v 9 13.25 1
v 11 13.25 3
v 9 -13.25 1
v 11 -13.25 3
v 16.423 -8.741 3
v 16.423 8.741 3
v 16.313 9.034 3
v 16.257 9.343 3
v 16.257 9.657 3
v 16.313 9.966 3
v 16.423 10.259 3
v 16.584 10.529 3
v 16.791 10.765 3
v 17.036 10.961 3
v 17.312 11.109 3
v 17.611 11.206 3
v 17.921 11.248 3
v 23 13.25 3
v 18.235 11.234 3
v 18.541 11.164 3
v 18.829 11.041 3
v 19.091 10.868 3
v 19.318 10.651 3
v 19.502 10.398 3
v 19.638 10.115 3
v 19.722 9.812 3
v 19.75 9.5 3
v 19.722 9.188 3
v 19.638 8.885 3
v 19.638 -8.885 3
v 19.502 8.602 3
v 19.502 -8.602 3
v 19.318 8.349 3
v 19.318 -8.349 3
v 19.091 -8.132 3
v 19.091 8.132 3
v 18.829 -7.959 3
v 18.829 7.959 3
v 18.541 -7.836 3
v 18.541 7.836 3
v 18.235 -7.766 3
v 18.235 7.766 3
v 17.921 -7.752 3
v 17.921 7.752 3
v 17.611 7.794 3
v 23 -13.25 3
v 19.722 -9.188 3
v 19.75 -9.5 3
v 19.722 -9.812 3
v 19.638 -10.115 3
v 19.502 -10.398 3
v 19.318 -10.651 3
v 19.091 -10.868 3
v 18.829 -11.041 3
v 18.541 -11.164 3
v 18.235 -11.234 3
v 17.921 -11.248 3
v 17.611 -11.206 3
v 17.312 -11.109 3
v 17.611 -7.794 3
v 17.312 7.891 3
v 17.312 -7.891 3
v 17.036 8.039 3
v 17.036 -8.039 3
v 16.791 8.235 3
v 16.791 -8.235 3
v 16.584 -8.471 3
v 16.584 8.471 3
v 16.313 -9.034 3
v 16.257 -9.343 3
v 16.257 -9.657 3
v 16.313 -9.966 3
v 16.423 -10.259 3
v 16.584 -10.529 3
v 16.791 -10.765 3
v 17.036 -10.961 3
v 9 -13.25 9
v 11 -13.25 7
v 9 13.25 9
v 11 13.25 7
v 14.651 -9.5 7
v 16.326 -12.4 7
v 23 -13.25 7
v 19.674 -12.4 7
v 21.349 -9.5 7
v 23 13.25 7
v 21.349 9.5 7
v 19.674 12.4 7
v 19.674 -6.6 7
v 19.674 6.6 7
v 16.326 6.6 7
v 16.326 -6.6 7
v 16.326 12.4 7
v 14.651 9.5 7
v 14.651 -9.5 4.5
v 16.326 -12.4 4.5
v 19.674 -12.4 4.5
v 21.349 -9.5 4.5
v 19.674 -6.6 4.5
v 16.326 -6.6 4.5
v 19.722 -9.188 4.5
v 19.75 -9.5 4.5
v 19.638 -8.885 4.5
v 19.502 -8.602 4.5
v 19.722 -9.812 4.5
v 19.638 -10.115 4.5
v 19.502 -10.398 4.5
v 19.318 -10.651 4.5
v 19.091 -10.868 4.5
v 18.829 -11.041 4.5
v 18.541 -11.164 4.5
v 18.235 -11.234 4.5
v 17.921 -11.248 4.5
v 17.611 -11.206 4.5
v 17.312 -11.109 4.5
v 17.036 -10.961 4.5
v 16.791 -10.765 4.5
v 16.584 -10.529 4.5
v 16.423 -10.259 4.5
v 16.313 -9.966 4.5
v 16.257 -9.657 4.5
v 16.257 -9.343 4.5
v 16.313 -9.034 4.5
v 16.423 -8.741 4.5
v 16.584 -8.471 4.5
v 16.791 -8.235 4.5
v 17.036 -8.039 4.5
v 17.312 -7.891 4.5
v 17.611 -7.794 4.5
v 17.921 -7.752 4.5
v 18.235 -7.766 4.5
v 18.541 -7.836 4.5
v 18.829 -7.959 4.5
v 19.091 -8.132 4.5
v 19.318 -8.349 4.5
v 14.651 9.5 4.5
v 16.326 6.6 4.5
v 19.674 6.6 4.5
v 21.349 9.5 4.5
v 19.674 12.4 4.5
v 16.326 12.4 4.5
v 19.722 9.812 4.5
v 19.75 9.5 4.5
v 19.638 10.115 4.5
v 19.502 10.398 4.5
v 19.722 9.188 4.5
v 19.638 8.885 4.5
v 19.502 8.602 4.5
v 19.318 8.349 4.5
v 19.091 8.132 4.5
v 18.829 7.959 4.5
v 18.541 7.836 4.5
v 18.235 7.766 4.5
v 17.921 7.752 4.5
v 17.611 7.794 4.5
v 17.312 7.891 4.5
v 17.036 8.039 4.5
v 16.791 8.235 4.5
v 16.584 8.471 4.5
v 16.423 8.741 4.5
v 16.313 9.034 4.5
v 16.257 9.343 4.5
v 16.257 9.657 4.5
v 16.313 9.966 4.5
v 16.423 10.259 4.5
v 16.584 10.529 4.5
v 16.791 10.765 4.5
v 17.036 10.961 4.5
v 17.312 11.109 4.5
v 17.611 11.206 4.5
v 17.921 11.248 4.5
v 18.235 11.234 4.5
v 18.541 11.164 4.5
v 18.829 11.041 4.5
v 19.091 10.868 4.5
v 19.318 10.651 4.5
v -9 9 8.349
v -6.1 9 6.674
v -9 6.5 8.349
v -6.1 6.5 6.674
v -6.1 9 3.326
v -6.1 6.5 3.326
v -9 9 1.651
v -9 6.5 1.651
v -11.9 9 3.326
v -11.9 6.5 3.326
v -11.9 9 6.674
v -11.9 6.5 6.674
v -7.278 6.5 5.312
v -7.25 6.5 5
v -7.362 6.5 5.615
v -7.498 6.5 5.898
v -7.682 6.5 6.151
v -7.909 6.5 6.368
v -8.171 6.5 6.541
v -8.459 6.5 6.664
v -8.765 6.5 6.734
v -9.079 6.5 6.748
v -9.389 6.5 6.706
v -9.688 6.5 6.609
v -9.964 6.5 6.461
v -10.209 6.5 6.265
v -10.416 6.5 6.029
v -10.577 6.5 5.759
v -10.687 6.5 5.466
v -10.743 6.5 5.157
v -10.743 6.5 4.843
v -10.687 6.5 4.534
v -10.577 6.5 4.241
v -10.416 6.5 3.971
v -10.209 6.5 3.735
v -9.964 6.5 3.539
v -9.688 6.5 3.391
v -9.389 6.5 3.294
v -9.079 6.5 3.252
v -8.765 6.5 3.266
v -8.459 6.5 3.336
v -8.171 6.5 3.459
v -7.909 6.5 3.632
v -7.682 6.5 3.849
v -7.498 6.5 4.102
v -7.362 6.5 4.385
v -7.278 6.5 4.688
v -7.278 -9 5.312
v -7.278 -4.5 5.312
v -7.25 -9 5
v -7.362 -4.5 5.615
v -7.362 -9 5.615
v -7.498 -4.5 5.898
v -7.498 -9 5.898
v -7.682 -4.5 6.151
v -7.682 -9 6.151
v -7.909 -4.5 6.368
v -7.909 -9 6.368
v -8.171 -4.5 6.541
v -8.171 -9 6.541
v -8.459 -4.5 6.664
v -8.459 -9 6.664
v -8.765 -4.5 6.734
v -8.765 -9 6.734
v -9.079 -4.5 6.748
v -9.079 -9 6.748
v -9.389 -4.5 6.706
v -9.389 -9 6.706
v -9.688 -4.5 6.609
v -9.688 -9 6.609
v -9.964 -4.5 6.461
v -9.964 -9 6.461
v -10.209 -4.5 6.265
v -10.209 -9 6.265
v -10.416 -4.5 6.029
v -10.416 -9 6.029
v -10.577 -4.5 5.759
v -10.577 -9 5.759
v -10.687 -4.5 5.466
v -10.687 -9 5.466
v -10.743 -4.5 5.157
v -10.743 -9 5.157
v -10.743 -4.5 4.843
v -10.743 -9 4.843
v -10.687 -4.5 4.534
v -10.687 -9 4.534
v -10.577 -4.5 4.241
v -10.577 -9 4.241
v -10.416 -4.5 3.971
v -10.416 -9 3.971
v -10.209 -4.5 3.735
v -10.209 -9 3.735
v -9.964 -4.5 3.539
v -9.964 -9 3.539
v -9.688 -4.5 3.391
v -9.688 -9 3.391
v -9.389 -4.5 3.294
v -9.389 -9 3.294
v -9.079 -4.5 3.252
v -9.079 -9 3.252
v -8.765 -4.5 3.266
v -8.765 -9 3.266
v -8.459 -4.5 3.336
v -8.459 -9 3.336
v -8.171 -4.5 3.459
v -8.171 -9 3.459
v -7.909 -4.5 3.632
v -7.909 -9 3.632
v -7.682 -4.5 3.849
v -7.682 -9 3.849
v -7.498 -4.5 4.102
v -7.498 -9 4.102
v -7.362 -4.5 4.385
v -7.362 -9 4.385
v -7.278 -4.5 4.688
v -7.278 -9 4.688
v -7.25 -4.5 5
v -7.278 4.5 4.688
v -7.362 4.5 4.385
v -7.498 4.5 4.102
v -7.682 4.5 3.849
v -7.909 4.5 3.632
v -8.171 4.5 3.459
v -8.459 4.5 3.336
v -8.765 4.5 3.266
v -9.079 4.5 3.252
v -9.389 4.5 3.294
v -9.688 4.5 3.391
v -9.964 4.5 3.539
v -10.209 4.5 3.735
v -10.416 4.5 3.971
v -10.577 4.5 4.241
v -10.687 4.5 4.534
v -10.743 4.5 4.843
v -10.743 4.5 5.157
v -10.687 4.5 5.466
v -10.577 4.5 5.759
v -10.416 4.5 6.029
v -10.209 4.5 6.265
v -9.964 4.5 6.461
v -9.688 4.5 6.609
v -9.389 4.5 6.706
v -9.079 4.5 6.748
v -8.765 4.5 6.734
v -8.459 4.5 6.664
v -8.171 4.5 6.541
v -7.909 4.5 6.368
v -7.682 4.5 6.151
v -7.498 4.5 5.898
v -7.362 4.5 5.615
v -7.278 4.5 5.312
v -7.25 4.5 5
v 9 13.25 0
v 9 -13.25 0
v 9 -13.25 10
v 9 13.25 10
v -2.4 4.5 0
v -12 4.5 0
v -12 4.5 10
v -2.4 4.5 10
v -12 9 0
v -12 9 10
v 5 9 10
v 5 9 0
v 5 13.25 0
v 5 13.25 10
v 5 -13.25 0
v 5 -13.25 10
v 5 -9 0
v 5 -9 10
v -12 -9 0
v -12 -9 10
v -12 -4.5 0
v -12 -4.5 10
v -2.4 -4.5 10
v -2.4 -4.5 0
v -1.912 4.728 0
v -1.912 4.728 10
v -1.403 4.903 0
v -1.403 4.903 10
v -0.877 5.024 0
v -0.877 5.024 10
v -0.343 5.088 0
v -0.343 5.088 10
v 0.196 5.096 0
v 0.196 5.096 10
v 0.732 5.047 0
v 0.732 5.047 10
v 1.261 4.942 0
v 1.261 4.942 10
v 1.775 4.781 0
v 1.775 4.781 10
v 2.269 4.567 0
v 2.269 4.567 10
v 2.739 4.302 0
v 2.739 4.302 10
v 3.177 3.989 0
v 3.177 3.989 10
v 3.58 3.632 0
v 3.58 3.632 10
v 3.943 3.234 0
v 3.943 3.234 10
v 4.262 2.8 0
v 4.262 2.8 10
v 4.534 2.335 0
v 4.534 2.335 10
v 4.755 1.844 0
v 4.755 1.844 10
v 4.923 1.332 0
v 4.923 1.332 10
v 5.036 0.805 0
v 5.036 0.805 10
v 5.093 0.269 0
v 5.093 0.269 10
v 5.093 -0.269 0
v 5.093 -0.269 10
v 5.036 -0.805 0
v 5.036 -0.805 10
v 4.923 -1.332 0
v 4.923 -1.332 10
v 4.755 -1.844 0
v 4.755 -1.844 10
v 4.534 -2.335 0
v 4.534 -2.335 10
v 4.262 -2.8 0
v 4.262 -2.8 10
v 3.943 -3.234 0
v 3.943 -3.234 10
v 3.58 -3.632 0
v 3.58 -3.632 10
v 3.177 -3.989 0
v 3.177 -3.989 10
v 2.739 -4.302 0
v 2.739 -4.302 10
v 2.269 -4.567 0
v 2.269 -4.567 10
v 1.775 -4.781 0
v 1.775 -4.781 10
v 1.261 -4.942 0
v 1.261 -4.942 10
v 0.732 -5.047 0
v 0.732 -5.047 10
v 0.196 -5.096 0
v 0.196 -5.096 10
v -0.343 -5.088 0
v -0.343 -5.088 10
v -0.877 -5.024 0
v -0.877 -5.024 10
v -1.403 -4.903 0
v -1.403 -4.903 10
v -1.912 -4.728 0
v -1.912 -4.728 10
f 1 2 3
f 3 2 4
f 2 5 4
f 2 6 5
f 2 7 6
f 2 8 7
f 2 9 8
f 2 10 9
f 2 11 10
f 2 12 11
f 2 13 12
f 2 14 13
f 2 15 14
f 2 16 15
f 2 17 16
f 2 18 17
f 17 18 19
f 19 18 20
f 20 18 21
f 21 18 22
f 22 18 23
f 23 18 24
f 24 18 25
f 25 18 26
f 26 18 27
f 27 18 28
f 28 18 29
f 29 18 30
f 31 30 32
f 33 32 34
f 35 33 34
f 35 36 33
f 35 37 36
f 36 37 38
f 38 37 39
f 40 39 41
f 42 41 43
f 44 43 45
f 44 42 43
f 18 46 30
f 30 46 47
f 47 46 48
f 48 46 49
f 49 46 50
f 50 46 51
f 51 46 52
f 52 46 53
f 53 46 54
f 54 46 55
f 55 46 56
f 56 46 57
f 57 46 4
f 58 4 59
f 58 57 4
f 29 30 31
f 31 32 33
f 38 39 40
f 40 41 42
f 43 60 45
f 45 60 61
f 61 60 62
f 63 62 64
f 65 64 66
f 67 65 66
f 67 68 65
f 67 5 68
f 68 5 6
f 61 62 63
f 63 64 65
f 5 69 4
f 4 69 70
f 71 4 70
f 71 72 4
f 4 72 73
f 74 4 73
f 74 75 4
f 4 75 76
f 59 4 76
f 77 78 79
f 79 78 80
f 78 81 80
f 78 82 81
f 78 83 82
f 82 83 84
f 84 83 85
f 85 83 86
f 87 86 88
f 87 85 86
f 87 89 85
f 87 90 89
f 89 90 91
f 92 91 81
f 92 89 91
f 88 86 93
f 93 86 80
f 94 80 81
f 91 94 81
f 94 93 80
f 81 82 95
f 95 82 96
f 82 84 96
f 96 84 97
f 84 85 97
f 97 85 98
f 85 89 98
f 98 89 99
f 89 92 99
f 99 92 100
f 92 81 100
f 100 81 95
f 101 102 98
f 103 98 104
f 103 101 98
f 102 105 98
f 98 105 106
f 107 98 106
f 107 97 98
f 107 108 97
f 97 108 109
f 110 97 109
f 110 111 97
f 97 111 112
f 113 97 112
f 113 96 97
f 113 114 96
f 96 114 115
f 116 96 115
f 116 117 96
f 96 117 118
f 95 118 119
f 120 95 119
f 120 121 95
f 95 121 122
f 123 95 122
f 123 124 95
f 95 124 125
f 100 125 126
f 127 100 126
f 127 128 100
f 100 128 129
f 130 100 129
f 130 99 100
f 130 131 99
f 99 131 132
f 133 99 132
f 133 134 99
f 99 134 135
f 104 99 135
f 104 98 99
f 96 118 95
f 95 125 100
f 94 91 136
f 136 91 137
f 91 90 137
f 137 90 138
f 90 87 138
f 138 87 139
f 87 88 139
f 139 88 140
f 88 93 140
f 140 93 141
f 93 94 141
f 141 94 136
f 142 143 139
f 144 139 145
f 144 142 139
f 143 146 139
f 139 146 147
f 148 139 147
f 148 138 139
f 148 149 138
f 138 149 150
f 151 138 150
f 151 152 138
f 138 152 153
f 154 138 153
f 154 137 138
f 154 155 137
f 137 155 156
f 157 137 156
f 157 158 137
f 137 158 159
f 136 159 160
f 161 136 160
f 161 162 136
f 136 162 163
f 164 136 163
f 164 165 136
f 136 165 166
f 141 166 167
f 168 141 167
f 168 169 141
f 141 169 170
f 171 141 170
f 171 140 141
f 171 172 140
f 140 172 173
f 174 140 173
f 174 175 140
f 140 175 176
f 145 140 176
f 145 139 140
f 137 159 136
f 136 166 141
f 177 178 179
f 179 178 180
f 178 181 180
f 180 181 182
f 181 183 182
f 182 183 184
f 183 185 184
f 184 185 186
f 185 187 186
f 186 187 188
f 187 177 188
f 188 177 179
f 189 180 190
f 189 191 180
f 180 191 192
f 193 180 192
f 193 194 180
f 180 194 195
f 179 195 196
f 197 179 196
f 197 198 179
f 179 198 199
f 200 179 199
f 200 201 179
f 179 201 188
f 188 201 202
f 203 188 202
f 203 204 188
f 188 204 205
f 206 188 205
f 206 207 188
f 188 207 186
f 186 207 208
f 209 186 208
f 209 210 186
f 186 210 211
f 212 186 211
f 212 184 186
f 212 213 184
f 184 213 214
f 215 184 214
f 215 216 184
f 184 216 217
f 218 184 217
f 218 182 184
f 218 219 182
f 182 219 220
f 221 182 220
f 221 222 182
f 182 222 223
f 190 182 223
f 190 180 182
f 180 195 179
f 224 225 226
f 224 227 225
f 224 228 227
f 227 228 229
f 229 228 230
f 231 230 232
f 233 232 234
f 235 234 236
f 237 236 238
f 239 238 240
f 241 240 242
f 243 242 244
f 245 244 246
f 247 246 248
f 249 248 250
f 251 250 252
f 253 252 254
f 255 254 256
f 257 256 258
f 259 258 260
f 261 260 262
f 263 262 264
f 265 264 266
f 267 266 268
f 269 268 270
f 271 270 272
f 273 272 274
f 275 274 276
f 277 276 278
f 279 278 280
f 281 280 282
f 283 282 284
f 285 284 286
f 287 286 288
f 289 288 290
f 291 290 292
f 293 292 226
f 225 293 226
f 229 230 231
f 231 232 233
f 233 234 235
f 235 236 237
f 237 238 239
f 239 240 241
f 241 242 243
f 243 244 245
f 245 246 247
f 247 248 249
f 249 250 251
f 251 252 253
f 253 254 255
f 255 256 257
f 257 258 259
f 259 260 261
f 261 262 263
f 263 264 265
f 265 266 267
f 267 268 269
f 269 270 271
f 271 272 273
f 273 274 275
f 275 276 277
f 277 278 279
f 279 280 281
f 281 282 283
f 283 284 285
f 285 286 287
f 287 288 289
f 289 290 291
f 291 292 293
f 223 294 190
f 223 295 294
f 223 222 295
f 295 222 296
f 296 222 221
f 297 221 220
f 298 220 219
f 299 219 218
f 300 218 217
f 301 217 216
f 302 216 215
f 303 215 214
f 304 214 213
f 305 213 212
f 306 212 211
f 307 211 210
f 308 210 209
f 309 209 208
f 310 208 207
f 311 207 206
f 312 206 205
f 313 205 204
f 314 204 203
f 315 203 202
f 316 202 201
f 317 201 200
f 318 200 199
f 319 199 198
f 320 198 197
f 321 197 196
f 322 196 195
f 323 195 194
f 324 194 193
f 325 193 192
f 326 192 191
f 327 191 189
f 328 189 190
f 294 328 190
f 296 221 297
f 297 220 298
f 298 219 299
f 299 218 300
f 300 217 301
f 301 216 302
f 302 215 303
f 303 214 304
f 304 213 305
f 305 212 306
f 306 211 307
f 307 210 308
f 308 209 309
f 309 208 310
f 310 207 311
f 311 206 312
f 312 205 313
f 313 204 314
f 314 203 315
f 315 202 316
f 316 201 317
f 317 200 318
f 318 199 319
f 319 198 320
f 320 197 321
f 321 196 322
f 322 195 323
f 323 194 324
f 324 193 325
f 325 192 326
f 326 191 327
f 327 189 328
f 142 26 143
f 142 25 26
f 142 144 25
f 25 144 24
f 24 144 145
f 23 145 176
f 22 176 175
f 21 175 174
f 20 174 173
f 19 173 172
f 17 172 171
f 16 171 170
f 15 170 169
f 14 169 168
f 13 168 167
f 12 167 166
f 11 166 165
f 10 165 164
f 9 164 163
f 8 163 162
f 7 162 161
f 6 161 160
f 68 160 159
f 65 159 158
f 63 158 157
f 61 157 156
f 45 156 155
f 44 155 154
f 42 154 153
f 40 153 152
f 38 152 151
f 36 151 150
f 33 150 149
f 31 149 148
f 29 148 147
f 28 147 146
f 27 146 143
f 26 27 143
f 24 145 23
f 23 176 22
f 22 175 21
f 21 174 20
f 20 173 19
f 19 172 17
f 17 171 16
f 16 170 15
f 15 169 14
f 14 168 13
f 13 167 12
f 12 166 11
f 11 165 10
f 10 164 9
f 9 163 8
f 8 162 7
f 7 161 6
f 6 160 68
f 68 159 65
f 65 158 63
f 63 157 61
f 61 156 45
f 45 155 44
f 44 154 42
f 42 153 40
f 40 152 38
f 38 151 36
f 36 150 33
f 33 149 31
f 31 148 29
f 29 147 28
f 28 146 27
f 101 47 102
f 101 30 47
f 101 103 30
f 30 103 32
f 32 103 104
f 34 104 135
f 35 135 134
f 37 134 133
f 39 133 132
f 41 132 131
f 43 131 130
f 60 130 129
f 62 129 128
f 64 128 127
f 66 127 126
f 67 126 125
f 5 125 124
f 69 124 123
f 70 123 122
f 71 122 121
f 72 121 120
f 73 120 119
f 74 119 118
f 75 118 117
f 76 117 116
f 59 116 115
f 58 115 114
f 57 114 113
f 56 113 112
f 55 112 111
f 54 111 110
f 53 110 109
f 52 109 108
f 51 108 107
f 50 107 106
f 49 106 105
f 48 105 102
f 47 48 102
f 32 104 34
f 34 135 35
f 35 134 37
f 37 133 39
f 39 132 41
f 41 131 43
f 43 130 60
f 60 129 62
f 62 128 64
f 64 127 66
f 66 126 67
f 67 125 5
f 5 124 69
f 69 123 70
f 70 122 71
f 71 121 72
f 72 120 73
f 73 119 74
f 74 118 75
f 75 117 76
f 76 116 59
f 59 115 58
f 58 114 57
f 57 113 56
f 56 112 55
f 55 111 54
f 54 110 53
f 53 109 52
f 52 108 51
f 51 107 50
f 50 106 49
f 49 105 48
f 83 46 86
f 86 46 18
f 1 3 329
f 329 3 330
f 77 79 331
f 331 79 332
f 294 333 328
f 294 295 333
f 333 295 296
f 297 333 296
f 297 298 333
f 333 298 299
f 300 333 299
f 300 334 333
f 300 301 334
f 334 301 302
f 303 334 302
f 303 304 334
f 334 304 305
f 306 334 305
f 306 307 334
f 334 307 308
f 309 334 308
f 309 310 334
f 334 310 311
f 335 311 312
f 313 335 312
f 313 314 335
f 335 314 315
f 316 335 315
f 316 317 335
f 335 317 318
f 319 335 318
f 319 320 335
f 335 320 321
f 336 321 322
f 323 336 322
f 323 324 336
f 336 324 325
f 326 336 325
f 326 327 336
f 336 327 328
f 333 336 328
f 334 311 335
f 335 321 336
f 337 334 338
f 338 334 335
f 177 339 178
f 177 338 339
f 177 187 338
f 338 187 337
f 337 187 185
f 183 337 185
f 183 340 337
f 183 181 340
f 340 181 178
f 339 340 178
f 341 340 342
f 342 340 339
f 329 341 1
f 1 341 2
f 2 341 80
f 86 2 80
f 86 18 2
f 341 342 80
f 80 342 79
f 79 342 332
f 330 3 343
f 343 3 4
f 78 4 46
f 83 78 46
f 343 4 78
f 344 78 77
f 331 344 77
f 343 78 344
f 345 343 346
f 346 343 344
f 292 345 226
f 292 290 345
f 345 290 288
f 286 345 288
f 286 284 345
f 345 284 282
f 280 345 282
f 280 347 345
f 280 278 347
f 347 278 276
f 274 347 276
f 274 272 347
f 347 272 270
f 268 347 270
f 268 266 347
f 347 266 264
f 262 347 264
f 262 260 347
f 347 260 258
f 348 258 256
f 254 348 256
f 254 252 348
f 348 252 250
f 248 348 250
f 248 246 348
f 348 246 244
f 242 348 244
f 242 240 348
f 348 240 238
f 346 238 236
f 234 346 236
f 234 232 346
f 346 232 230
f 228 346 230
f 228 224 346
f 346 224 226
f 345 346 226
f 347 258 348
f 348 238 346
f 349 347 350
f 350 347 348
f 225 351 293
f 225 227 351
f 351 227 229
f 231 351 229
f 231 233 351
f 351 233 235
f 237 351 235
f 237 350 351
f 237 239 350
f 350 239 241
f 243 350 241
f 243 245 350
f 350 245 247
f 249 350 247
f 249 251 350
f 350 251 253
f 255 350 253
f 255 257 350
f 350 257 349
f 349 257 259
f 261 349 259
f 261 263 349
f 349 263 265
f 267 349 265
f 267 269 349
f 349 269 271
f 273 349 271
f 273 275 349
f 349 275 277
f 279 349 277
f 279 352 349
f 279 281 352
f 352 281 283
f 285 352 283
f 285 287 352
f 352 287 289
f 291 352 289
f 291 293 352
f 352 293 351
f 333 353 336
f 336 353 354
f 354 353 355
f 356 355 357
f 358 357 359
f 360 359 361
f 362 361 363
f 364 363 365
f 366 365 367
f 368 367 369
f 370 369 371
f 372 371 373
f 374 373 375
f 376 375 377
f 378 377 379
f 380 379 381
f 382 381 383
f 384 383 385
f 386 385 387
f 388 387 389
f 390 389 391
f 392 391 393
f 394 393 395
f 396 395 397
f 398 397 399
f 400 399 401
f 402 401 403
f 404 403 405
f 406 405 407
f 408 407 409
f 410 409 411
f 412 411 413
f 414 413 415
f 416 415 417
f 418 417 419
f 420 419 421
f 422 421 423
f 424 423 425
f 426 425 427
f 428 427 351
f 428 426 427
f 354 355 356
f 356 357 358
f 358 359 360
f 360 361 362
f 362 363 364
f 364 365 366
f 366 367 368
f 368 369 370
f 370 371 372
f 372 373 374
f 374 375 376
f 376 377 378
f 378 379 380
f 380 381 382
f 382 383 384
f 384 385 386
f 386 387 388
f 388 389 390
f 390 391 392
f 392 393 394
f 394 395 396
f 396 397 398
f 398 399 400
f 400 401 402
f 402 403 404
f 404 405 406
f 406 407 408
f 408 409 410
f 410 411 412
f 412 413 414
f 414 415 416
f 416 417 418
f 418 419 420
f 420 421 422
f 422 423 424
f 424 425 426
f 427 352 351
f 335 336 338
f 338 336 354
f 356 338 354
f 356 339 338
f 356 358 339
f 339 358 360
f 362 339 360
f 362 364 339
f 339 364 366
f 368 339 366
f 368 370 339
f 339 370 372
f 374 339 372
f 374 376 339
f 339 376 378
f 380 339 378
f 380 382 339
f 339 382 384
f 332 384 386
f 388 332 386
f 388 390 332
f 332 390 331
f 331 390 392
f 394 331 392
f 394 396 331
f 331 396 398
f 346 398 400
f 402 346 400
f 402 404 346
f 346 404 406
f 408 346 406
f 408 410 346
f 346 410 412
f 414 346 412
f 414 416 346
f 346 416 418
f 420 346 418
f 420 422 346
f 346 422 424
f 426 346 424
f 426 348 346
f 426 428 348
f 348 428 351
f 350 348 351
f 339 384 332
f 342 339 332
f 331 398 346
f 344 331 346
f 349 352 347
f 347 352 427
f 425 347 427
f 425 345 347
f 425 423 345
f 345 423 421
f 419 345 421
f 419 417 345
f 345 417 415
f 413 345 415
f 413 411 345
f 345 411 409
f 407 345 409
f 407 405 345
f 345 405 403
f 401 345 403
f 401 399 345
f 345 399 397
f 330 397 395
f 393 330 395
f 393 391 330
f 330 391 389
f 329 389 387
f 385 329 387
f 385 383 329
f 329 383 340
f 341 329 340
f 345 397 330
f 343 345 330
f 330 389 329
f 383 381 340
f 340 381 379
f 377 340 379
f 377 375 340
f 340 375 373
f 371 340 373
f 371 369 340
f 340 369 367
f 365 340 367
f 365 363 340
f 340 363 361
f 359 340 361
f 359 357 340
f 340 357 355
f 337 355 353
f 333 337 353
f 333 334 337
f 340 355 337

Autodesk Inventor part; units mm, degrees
ref_plane "YZ Plane" through (0, 0, 0) normal (1, 0, 0) x (0, 1, 0)
ref_plane "XZ Plane" through (0, 0, 0) normal (0, 1, 0) x (-1, 0, 0)
ref_plane "XY Plane" through (0, 0, 0) normal (0, 0, 1) x (1, 0, 0)
sketch "Sketch1" plane through (0, 0, 0) normal (0, 0, 1) x (1, 0, 0)
  arc A0 (-2.4, -4.5) -> (-2.4, 4.5) centre (0, 0) ccw
  line L0 (-2.4, 4.5) -> (-12, 4.5)
  line L1 (-12, 4.5) -> (-12, 9)
  line L2 (-12, 9) -> (5, 9)
  line L3 (5, -9) -> (-12, -9)
  line L4 (-12, -9) -> (-12, -4.5)
  line L5 (-12, -4.5) -> (-2.4, -4.5)
  line L6 (5, 9) -> (5, 13.25)
  line L7 (5, -9) -> (5, -13.25)
  line L8 (5, 13.25) -> (9, 13.25)
  line L9 (9, 13.25) -> (9, -13.25)
  line L10 (9, -13.25) -> (5, -13.25)
  dimension "d0" = 10.2
  dimension "d1" = 9
  dimension "d2" = 12
  dimension "d3" = 9
  dimension "d7" = 26.5
  dimension "d8" = 4.25
  dimension "d9" = 4
  dimension "d10" = 5
extrude "Extrusion1" add sketch "Sketch1" along normal blind 10
sketch "Sketch4" plane through (5, 13.25, 0) normal (0, 1, 0) x (1, 0, 0)
  line L0 (4, 0) -> (4, -10) projected
  line L1 (4, 0) -> (4, -10) projected
  line L2 (18, -3) -> (18, -7)
  line L3 (18, -7) -> (4, -7)
  line L4 (18, -3) -> (4, -3)
  line L5 (4, 0) -> (0, 0) projected
  point P0 (-5, 0)
  dimension "d24" = 4
  dimension "d47" = 14
  dimension "d48" = 3
extrude "Extrusion4" add sketch "Sketch4" against normal up to surface (26.5 mm away)
sketch "Sketch5" plane through (9, 13.25, 7) normal (0, 0, 1) x (1, 0, 0)
  line L0 (0, -26.5) -> (14, -26.5) projected
  line L1 (14, 0) -> (14, -26.5) projected
  line L2 (0, 0) -> (14, 0) projected
  circle A0 centre (9, -3.75) radius 1.75
  circle A1 centre (9, -22.75) radius 1.75
  point P0 (-9, -13.25)
  dimension "d27" = 3.5
  dimension "d28" = 3.75
  dimension "d29" = 3.75
  dimension "d30" = 5
extrude "Extrusion5" cut sketch "Sketch5" against normal up to next
sketch "Sketch6" plane through (-12, -9, 0) normal (0, -1, 0) x (1, 0, 0)
  line L0 (0, 10) -> (17, 10) projected
  line L1 (0, 0) -> (0, 10) projected
  circle A0 centre (3, 5) radius 1.75
  point P0 (12, 0)
  dimension "d33" = 3.5
  dimension "d34" = 3
  dimension "d35" = 5
extrude "Extrusion6" cut sketch "Sketch6" against normal up to surface (18 mm away)
sketch "Sketch7" plane through (-12, 9, 0) normal (0, 1, 0) x (1, 0, 0)
  circle A0 centre (3, -5) radius 1.75 projected
  line L0 (3, -8.3486) -> (0.1, -6.6743)
  line L1 (0.1, -6.6743) -> (0.1, -3.3257)
  line L2 (0.1, -3.3257) -> (3, -1.6514)
  line L3 (3, -1.6514) -> (5.9, -3.3257)
  line L4 (5.9, -3.3257) -> (5.9, -6.6743)
  line L5 (5.9, -6.6743) -> (3, -8.3486)
  point P0 (12, 0)
  dimension "d38" = 5.8
extrude "Extrusion7" cut sketch "Sketch7" against normal blind 2.5
sketch "Sketch8" plane through (9, 13.25, 7) normal (0, 0, 1) x (1, 0, 0)
  circle A0 centre (9, -3.75) radius 1.75 projected
  circle A1 centre (9, -22.75) radius 1.75 projected
  line L0 (5.6514, -22.75) -> (7.3257, -19.85)
  line L1 (7.3257, -19.85) -> (10.6743, -19.85)
  line L2 (10.6743, -19.85) -> (12.3486, -22.75)
  line L3 (12.3486, -22.75) -> (10.6743, -25.65)
  line L4 (10.6743, -25.65) -> (7.3257, -25.65)
  line L5 (7.3257, -25.65) -> (5.6514, -22.75)
  line L6 (5.6514, -3.75) -> (7.3257, -0.85)
  line L7 (7.3257, -0.85) -> (10.6743, -0.85)
  line L8 (10.6743, -0.85) -> (12.3486, -3.75)
  line L9 (12.3486, -3.75) -> (10.6743, -6.65)
  line L10 (10.6743, -6.65) -> (7.3257, -6.65)
  line L11 (7.3257, -6.65) -> (5.6514, -3.75)
  point P0 (-9, -13.25)
  dimension "d41" = 5.8
extrude "Extrusion8" cut sketch "Sketch8" against normal blind 2.5
chamfer "Chamfer1" distance 2 angle 45 2 edges at (9, 0, 7) (9, 0, 3)
properties part number "ZAxisEndstopMount"
